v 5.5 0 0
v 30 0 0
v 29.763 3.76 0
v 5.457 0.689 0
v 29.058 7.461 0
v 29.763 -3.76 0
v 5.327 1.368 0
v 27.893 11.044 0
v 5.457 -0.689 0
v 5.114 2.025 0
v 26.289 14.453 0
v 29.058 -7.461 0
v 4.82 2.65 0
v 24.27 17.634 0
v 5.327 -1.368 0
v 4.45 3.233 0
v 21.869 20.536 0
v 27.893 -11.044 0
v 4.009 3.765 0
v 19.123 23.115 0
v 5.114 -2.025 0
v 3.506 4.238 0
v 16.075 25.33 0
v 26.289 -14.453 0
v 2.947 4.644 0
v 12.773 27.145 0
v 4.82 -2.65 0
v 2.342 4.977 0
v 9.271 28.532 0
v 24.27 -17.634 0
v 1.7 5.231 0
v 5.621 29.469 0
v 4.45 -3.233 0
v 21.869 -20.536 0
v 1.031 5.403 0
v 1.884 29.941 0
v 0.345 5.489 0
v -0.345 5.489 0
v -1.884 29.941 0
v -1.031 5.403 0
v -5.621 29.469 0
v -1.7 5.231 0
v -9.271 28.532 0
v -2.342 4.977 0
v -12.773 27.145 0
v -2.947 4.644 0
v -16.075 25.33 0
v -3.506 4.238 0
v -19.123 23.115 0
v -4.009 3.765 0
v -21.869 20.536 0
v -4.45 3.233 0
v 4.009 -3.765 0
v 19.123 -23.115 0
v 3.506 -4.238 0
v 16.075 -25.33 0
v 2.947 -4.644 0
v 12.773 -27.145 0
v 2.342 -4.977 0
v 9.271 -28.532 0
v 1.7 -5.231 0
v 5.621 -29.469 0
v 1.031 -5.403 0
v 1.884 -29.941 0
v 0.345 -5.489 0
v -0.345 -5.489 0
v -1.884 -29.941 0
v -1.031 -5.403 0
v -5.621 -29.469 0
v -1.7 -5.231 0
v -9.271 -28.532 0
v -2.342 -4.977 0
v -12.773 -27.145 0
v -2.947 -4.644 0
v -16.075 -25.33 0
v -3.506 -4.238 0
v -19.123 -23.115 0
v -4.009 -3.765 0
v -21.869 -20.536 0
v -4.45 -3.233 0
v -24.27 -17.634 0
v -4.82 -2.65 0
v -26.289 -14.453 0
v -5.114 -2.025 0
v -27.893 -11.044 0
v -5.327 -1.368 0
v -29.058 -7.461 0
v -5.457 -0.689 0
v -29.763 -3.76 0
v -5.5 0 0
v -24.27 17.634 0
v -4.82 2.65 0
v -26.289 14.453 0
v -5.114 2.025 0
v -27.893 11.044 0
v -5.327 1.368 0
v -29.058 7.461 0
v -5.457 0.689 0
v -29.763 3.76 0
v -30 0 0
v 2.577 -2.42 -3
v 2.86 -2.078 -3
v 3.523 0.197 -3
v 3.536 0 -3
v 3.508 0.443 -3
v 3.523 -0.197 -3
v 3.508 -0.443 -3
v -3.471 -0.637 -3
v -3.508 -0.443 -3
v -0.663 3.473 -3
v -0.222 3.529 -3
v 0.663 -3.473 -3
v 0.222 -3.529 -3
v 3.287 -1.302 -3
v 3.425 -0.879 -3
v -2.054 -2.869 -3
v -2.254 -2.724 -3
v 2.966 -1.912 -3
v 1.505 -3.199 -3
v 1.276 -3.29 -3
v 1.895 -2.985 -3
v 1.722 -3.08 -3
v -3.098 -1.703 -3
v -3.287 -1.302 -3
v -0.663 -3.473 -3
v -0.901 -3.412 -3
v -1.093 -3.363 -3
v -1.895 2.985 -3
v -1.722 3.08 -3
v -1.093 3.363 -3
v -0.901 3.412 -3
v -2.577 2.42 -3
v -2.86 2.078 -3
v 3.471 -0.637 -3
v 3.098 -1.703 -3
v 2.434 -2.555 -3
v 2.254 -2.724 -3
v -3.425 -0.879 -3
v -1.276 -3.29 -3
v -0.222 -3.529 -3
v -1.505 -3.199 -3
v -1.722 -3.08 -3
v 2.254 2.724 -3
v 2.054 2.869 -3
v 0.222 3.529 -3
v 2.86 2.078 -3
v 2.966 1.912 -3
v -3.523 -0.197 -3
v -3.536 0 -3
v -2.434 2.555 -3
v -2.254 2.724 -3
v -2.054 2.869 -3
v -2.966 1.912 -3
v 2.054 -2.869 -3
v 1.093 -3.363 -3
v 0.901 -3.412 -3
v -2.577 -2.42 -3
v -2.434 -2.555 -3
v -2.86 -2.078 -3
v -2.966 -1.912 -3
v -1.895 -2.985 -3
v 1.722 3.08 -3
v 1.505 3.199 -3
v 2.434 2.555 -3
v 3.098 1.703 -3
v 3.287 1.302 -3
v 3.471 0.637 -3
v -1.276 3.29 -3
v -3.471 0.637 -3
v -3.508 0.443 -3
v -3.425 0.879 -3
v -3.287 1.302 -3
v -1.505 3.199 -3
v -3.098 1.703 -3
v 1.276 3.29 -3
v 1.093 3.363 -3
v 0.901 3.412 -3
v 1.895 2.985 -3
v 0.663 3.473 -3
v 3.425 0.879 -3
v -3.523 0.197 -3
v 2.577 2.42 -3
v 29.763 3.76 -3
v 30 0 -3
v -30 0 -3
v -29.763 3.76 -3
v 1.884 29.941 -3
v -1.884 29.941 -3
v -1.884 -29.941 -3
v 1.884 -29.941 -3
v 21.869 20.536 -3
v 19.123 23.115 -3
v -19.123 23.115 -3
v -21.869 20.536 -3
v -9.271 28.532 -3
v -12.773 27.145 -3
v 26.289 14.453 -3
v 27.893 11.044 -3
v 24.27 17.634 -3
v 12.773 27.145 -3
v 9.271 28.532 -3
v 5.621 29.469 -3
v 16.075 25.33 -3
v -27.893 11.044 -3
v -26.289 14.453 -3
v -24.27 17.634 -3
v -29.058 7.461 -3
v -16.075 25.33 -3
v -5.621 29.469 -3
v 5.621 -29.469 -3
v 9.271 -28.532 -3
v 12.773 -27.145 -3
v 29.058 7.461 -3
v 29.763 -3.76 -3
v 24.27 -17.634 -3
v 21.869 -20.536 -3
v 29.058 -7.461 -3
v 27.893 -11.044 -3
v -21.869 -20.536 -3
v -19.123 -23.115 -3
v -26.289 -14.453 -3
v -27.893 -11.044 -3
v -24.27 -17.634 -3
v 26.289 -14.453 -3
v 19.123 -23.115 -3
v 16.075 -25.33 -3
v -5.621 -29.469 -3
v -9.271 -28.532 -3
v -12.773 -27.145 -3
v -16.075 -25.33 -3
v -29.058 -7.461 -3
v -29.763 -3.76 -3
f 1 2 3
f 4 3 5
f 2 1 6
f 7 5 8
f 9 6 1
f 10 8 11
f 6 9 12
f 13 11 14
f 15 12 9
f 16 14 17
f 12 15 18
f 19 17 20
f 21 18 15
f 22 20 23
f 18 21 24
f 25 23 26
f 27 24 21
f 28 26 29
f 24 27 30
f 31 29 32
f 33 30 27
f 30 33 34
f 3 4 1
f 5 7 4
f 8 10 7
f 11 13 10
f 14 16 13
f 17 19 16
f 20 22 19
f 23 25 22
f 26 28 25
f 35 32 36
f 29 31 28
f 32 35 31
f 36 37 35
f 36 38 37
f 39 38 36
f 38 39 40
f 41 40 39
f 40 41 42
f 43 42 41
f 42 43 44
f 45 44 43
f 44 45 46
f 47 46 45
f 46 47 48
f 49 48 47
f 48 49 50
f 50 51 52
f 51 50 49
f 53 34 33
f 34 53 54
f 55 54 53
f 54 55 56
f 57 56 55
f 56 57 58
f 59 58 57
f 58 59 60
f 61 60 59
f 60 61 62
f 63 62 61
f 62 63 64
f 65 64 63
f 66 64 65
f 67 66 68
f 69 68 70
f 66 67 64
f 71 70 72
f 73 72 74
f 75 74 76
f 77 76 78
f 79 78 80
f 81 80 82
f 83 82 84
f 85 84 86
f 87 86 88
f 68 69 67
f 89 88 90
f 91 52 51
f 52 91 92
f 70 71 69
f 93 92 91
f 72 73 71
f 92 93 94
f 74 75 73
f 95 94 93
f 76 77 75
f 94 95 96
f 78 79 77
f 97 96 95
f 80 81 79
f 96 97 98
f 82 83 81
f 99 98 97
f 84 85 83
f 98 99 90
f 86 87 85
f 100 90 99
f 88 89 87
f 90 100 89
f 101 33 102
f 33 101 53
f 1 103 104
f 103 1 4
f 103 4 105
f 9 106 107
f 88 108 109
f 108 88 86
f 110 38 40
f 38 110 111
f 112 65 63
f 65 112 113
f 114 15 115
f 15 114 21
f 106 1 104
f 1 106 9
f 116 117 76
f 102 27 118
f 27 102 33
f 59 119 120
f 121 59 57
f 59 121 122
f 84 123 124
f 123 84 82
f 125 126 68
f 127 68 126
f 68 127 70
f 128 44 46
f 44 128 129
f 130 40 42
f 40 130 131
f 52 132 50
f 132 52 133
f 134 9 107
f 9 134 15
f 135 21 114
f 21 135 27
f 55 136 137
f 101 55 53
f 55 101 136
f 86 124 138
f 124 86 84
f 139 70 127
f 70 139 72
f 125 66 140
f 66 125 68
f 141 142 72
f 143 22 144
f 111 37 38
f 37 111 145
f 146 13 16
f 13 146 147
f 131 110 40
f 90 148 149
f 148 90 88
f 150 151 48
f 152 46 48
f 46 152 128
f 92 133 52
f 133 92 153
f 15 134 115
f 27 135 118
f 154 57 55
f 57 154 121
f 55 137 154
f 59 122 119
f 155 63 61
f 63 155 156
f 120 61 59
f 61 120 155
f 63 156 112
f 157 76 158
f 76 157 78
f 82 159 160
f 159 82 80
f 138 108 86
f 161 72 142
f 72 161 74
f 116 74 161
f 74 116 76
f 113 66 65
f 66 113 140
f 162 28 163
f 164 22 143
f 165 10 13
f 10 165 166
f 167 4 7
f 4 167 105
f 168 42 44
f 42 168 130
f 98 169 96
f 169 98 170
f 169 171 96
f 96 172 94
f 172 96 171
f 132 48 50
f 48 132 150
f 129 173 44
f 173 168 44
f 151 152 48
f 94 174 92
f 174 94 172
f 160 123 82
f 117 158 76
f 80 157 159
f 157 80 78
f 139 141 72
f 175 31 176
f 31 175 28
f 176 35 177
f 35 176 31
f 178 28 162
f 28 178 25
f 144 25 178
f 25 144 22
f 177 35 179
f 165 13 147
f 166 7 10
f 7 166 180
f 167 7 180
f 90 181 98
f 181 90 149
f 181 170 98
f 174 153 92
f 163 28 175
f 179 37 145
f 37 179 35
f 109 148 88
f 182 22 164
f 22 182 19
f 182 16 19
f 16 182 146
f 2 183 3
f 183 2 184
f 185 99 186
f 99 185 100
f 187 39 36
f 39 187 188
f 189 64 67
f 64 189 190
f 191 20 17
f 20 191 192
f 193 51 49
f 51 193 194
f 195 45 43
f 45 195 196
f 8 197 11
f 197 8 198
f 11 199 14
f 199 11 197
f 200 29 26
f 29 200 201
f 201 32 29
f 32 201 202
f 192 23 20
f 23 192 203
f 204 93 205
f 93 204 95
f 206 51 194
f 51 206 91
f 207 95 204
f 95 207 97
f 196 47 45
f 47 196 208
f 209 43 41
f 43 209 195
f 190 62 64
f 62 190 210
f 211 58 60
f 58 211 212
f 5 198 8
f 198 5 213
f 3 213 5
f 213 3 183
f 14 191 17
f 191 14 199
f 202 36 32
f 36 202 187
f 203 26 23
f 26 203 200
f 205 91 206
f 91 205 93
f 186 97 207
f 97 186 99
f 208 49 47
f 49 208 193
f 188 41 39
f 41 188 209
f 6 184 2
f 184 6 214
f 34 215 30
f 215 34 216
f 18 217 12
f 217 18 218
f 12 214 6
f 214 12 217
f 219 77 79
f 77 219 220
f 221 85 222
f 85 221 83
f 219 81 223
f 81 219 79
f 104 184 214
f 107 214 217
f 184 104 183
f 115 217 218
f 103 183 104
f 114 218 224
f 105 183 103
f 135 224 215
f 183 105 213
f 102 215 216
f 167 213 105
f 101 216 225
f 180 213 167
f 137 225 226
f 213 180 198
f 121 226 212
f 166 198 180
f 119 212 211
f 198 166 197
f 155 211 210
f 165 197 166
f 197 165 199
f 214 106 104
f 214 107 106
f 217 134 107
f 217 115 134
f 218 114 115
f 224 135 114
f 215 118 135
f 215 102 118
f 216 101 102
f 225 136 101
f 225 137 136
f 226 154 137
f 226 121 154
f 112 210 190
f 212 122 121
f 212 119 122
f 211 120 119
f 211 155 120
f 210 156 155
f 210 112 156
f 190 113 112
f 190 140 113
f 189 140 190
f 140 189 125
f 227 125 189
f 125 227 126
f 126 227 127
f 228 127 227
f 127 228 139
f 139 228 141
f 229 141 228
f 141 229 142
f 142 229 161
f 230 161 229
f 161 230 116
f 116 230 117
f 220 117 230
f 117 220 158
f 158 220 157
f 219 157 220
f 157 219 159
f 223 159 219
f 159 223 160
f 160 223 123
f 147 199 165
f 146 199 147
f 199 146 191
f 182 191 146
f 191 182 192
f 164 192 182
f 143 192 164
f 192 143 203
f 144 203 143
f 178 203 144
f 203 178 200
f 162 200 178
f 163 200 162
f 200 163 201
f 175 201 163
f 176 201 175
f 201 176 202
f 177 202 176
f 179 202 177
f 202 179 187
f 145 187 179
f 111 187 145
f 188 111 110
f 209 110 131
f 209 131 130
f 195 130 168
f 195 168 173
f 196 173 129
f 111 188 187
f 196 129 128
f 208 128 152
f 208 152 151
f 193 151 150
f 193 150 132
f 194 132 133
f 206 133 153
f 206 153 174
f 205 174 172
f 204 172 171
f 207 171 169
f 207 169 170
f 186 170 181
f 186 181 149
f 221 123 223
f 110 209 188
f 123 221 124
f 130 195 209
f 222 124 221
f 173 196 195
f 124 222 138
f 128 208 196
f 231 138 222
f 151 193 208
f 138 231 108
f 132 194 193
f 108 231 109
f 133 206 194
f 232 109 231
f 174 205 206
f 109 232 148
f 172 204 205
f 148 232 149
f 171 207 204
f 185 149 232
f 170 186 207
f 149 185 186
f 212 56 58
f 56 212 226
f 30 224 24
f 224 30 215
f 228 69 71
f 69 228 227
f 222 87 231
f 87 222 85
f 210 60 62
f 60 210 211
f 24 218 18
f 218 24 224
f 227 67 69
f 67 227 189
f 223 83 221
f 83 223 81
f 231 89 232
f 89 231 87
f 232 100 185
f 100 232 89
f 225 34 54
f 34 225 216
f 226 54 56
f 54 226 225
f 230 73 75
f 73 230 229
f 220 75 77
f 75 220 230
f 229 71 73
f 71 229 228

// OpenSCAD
$fn = 50;


difference() {
	union() {
		translate(v = [0, 0, -3.0000000000]) {
			cylinder(h = 3, r = 30.0000000000);
		}
	}
	union() {
		translate(v = [0, 0, 0]) {
			rotate(a = [0, 0, 0]) {
				difference() {
					union() {
						translate(v = [0, 0, -3.0000000000]) {
							cylinder(h = 3, r = 2.2500000000);
						}
						translate(v = [0, 0, -4.2000000000]) {
							cylinder(h = 4.2000000000, r1 = 2.7500000000, r2 = 5.5000000000);
						}
						translate(v = [0, 0, -3.0000000000]) {
							cylinder(h = 3, r = 2.7500000000);
						}
						translate(v = [0, 0, -3.0000000000]) {
							cylinder(h = 3, r = 2.2500000000);
						}
					}
					union();
				}
			}
		}
	}
}
